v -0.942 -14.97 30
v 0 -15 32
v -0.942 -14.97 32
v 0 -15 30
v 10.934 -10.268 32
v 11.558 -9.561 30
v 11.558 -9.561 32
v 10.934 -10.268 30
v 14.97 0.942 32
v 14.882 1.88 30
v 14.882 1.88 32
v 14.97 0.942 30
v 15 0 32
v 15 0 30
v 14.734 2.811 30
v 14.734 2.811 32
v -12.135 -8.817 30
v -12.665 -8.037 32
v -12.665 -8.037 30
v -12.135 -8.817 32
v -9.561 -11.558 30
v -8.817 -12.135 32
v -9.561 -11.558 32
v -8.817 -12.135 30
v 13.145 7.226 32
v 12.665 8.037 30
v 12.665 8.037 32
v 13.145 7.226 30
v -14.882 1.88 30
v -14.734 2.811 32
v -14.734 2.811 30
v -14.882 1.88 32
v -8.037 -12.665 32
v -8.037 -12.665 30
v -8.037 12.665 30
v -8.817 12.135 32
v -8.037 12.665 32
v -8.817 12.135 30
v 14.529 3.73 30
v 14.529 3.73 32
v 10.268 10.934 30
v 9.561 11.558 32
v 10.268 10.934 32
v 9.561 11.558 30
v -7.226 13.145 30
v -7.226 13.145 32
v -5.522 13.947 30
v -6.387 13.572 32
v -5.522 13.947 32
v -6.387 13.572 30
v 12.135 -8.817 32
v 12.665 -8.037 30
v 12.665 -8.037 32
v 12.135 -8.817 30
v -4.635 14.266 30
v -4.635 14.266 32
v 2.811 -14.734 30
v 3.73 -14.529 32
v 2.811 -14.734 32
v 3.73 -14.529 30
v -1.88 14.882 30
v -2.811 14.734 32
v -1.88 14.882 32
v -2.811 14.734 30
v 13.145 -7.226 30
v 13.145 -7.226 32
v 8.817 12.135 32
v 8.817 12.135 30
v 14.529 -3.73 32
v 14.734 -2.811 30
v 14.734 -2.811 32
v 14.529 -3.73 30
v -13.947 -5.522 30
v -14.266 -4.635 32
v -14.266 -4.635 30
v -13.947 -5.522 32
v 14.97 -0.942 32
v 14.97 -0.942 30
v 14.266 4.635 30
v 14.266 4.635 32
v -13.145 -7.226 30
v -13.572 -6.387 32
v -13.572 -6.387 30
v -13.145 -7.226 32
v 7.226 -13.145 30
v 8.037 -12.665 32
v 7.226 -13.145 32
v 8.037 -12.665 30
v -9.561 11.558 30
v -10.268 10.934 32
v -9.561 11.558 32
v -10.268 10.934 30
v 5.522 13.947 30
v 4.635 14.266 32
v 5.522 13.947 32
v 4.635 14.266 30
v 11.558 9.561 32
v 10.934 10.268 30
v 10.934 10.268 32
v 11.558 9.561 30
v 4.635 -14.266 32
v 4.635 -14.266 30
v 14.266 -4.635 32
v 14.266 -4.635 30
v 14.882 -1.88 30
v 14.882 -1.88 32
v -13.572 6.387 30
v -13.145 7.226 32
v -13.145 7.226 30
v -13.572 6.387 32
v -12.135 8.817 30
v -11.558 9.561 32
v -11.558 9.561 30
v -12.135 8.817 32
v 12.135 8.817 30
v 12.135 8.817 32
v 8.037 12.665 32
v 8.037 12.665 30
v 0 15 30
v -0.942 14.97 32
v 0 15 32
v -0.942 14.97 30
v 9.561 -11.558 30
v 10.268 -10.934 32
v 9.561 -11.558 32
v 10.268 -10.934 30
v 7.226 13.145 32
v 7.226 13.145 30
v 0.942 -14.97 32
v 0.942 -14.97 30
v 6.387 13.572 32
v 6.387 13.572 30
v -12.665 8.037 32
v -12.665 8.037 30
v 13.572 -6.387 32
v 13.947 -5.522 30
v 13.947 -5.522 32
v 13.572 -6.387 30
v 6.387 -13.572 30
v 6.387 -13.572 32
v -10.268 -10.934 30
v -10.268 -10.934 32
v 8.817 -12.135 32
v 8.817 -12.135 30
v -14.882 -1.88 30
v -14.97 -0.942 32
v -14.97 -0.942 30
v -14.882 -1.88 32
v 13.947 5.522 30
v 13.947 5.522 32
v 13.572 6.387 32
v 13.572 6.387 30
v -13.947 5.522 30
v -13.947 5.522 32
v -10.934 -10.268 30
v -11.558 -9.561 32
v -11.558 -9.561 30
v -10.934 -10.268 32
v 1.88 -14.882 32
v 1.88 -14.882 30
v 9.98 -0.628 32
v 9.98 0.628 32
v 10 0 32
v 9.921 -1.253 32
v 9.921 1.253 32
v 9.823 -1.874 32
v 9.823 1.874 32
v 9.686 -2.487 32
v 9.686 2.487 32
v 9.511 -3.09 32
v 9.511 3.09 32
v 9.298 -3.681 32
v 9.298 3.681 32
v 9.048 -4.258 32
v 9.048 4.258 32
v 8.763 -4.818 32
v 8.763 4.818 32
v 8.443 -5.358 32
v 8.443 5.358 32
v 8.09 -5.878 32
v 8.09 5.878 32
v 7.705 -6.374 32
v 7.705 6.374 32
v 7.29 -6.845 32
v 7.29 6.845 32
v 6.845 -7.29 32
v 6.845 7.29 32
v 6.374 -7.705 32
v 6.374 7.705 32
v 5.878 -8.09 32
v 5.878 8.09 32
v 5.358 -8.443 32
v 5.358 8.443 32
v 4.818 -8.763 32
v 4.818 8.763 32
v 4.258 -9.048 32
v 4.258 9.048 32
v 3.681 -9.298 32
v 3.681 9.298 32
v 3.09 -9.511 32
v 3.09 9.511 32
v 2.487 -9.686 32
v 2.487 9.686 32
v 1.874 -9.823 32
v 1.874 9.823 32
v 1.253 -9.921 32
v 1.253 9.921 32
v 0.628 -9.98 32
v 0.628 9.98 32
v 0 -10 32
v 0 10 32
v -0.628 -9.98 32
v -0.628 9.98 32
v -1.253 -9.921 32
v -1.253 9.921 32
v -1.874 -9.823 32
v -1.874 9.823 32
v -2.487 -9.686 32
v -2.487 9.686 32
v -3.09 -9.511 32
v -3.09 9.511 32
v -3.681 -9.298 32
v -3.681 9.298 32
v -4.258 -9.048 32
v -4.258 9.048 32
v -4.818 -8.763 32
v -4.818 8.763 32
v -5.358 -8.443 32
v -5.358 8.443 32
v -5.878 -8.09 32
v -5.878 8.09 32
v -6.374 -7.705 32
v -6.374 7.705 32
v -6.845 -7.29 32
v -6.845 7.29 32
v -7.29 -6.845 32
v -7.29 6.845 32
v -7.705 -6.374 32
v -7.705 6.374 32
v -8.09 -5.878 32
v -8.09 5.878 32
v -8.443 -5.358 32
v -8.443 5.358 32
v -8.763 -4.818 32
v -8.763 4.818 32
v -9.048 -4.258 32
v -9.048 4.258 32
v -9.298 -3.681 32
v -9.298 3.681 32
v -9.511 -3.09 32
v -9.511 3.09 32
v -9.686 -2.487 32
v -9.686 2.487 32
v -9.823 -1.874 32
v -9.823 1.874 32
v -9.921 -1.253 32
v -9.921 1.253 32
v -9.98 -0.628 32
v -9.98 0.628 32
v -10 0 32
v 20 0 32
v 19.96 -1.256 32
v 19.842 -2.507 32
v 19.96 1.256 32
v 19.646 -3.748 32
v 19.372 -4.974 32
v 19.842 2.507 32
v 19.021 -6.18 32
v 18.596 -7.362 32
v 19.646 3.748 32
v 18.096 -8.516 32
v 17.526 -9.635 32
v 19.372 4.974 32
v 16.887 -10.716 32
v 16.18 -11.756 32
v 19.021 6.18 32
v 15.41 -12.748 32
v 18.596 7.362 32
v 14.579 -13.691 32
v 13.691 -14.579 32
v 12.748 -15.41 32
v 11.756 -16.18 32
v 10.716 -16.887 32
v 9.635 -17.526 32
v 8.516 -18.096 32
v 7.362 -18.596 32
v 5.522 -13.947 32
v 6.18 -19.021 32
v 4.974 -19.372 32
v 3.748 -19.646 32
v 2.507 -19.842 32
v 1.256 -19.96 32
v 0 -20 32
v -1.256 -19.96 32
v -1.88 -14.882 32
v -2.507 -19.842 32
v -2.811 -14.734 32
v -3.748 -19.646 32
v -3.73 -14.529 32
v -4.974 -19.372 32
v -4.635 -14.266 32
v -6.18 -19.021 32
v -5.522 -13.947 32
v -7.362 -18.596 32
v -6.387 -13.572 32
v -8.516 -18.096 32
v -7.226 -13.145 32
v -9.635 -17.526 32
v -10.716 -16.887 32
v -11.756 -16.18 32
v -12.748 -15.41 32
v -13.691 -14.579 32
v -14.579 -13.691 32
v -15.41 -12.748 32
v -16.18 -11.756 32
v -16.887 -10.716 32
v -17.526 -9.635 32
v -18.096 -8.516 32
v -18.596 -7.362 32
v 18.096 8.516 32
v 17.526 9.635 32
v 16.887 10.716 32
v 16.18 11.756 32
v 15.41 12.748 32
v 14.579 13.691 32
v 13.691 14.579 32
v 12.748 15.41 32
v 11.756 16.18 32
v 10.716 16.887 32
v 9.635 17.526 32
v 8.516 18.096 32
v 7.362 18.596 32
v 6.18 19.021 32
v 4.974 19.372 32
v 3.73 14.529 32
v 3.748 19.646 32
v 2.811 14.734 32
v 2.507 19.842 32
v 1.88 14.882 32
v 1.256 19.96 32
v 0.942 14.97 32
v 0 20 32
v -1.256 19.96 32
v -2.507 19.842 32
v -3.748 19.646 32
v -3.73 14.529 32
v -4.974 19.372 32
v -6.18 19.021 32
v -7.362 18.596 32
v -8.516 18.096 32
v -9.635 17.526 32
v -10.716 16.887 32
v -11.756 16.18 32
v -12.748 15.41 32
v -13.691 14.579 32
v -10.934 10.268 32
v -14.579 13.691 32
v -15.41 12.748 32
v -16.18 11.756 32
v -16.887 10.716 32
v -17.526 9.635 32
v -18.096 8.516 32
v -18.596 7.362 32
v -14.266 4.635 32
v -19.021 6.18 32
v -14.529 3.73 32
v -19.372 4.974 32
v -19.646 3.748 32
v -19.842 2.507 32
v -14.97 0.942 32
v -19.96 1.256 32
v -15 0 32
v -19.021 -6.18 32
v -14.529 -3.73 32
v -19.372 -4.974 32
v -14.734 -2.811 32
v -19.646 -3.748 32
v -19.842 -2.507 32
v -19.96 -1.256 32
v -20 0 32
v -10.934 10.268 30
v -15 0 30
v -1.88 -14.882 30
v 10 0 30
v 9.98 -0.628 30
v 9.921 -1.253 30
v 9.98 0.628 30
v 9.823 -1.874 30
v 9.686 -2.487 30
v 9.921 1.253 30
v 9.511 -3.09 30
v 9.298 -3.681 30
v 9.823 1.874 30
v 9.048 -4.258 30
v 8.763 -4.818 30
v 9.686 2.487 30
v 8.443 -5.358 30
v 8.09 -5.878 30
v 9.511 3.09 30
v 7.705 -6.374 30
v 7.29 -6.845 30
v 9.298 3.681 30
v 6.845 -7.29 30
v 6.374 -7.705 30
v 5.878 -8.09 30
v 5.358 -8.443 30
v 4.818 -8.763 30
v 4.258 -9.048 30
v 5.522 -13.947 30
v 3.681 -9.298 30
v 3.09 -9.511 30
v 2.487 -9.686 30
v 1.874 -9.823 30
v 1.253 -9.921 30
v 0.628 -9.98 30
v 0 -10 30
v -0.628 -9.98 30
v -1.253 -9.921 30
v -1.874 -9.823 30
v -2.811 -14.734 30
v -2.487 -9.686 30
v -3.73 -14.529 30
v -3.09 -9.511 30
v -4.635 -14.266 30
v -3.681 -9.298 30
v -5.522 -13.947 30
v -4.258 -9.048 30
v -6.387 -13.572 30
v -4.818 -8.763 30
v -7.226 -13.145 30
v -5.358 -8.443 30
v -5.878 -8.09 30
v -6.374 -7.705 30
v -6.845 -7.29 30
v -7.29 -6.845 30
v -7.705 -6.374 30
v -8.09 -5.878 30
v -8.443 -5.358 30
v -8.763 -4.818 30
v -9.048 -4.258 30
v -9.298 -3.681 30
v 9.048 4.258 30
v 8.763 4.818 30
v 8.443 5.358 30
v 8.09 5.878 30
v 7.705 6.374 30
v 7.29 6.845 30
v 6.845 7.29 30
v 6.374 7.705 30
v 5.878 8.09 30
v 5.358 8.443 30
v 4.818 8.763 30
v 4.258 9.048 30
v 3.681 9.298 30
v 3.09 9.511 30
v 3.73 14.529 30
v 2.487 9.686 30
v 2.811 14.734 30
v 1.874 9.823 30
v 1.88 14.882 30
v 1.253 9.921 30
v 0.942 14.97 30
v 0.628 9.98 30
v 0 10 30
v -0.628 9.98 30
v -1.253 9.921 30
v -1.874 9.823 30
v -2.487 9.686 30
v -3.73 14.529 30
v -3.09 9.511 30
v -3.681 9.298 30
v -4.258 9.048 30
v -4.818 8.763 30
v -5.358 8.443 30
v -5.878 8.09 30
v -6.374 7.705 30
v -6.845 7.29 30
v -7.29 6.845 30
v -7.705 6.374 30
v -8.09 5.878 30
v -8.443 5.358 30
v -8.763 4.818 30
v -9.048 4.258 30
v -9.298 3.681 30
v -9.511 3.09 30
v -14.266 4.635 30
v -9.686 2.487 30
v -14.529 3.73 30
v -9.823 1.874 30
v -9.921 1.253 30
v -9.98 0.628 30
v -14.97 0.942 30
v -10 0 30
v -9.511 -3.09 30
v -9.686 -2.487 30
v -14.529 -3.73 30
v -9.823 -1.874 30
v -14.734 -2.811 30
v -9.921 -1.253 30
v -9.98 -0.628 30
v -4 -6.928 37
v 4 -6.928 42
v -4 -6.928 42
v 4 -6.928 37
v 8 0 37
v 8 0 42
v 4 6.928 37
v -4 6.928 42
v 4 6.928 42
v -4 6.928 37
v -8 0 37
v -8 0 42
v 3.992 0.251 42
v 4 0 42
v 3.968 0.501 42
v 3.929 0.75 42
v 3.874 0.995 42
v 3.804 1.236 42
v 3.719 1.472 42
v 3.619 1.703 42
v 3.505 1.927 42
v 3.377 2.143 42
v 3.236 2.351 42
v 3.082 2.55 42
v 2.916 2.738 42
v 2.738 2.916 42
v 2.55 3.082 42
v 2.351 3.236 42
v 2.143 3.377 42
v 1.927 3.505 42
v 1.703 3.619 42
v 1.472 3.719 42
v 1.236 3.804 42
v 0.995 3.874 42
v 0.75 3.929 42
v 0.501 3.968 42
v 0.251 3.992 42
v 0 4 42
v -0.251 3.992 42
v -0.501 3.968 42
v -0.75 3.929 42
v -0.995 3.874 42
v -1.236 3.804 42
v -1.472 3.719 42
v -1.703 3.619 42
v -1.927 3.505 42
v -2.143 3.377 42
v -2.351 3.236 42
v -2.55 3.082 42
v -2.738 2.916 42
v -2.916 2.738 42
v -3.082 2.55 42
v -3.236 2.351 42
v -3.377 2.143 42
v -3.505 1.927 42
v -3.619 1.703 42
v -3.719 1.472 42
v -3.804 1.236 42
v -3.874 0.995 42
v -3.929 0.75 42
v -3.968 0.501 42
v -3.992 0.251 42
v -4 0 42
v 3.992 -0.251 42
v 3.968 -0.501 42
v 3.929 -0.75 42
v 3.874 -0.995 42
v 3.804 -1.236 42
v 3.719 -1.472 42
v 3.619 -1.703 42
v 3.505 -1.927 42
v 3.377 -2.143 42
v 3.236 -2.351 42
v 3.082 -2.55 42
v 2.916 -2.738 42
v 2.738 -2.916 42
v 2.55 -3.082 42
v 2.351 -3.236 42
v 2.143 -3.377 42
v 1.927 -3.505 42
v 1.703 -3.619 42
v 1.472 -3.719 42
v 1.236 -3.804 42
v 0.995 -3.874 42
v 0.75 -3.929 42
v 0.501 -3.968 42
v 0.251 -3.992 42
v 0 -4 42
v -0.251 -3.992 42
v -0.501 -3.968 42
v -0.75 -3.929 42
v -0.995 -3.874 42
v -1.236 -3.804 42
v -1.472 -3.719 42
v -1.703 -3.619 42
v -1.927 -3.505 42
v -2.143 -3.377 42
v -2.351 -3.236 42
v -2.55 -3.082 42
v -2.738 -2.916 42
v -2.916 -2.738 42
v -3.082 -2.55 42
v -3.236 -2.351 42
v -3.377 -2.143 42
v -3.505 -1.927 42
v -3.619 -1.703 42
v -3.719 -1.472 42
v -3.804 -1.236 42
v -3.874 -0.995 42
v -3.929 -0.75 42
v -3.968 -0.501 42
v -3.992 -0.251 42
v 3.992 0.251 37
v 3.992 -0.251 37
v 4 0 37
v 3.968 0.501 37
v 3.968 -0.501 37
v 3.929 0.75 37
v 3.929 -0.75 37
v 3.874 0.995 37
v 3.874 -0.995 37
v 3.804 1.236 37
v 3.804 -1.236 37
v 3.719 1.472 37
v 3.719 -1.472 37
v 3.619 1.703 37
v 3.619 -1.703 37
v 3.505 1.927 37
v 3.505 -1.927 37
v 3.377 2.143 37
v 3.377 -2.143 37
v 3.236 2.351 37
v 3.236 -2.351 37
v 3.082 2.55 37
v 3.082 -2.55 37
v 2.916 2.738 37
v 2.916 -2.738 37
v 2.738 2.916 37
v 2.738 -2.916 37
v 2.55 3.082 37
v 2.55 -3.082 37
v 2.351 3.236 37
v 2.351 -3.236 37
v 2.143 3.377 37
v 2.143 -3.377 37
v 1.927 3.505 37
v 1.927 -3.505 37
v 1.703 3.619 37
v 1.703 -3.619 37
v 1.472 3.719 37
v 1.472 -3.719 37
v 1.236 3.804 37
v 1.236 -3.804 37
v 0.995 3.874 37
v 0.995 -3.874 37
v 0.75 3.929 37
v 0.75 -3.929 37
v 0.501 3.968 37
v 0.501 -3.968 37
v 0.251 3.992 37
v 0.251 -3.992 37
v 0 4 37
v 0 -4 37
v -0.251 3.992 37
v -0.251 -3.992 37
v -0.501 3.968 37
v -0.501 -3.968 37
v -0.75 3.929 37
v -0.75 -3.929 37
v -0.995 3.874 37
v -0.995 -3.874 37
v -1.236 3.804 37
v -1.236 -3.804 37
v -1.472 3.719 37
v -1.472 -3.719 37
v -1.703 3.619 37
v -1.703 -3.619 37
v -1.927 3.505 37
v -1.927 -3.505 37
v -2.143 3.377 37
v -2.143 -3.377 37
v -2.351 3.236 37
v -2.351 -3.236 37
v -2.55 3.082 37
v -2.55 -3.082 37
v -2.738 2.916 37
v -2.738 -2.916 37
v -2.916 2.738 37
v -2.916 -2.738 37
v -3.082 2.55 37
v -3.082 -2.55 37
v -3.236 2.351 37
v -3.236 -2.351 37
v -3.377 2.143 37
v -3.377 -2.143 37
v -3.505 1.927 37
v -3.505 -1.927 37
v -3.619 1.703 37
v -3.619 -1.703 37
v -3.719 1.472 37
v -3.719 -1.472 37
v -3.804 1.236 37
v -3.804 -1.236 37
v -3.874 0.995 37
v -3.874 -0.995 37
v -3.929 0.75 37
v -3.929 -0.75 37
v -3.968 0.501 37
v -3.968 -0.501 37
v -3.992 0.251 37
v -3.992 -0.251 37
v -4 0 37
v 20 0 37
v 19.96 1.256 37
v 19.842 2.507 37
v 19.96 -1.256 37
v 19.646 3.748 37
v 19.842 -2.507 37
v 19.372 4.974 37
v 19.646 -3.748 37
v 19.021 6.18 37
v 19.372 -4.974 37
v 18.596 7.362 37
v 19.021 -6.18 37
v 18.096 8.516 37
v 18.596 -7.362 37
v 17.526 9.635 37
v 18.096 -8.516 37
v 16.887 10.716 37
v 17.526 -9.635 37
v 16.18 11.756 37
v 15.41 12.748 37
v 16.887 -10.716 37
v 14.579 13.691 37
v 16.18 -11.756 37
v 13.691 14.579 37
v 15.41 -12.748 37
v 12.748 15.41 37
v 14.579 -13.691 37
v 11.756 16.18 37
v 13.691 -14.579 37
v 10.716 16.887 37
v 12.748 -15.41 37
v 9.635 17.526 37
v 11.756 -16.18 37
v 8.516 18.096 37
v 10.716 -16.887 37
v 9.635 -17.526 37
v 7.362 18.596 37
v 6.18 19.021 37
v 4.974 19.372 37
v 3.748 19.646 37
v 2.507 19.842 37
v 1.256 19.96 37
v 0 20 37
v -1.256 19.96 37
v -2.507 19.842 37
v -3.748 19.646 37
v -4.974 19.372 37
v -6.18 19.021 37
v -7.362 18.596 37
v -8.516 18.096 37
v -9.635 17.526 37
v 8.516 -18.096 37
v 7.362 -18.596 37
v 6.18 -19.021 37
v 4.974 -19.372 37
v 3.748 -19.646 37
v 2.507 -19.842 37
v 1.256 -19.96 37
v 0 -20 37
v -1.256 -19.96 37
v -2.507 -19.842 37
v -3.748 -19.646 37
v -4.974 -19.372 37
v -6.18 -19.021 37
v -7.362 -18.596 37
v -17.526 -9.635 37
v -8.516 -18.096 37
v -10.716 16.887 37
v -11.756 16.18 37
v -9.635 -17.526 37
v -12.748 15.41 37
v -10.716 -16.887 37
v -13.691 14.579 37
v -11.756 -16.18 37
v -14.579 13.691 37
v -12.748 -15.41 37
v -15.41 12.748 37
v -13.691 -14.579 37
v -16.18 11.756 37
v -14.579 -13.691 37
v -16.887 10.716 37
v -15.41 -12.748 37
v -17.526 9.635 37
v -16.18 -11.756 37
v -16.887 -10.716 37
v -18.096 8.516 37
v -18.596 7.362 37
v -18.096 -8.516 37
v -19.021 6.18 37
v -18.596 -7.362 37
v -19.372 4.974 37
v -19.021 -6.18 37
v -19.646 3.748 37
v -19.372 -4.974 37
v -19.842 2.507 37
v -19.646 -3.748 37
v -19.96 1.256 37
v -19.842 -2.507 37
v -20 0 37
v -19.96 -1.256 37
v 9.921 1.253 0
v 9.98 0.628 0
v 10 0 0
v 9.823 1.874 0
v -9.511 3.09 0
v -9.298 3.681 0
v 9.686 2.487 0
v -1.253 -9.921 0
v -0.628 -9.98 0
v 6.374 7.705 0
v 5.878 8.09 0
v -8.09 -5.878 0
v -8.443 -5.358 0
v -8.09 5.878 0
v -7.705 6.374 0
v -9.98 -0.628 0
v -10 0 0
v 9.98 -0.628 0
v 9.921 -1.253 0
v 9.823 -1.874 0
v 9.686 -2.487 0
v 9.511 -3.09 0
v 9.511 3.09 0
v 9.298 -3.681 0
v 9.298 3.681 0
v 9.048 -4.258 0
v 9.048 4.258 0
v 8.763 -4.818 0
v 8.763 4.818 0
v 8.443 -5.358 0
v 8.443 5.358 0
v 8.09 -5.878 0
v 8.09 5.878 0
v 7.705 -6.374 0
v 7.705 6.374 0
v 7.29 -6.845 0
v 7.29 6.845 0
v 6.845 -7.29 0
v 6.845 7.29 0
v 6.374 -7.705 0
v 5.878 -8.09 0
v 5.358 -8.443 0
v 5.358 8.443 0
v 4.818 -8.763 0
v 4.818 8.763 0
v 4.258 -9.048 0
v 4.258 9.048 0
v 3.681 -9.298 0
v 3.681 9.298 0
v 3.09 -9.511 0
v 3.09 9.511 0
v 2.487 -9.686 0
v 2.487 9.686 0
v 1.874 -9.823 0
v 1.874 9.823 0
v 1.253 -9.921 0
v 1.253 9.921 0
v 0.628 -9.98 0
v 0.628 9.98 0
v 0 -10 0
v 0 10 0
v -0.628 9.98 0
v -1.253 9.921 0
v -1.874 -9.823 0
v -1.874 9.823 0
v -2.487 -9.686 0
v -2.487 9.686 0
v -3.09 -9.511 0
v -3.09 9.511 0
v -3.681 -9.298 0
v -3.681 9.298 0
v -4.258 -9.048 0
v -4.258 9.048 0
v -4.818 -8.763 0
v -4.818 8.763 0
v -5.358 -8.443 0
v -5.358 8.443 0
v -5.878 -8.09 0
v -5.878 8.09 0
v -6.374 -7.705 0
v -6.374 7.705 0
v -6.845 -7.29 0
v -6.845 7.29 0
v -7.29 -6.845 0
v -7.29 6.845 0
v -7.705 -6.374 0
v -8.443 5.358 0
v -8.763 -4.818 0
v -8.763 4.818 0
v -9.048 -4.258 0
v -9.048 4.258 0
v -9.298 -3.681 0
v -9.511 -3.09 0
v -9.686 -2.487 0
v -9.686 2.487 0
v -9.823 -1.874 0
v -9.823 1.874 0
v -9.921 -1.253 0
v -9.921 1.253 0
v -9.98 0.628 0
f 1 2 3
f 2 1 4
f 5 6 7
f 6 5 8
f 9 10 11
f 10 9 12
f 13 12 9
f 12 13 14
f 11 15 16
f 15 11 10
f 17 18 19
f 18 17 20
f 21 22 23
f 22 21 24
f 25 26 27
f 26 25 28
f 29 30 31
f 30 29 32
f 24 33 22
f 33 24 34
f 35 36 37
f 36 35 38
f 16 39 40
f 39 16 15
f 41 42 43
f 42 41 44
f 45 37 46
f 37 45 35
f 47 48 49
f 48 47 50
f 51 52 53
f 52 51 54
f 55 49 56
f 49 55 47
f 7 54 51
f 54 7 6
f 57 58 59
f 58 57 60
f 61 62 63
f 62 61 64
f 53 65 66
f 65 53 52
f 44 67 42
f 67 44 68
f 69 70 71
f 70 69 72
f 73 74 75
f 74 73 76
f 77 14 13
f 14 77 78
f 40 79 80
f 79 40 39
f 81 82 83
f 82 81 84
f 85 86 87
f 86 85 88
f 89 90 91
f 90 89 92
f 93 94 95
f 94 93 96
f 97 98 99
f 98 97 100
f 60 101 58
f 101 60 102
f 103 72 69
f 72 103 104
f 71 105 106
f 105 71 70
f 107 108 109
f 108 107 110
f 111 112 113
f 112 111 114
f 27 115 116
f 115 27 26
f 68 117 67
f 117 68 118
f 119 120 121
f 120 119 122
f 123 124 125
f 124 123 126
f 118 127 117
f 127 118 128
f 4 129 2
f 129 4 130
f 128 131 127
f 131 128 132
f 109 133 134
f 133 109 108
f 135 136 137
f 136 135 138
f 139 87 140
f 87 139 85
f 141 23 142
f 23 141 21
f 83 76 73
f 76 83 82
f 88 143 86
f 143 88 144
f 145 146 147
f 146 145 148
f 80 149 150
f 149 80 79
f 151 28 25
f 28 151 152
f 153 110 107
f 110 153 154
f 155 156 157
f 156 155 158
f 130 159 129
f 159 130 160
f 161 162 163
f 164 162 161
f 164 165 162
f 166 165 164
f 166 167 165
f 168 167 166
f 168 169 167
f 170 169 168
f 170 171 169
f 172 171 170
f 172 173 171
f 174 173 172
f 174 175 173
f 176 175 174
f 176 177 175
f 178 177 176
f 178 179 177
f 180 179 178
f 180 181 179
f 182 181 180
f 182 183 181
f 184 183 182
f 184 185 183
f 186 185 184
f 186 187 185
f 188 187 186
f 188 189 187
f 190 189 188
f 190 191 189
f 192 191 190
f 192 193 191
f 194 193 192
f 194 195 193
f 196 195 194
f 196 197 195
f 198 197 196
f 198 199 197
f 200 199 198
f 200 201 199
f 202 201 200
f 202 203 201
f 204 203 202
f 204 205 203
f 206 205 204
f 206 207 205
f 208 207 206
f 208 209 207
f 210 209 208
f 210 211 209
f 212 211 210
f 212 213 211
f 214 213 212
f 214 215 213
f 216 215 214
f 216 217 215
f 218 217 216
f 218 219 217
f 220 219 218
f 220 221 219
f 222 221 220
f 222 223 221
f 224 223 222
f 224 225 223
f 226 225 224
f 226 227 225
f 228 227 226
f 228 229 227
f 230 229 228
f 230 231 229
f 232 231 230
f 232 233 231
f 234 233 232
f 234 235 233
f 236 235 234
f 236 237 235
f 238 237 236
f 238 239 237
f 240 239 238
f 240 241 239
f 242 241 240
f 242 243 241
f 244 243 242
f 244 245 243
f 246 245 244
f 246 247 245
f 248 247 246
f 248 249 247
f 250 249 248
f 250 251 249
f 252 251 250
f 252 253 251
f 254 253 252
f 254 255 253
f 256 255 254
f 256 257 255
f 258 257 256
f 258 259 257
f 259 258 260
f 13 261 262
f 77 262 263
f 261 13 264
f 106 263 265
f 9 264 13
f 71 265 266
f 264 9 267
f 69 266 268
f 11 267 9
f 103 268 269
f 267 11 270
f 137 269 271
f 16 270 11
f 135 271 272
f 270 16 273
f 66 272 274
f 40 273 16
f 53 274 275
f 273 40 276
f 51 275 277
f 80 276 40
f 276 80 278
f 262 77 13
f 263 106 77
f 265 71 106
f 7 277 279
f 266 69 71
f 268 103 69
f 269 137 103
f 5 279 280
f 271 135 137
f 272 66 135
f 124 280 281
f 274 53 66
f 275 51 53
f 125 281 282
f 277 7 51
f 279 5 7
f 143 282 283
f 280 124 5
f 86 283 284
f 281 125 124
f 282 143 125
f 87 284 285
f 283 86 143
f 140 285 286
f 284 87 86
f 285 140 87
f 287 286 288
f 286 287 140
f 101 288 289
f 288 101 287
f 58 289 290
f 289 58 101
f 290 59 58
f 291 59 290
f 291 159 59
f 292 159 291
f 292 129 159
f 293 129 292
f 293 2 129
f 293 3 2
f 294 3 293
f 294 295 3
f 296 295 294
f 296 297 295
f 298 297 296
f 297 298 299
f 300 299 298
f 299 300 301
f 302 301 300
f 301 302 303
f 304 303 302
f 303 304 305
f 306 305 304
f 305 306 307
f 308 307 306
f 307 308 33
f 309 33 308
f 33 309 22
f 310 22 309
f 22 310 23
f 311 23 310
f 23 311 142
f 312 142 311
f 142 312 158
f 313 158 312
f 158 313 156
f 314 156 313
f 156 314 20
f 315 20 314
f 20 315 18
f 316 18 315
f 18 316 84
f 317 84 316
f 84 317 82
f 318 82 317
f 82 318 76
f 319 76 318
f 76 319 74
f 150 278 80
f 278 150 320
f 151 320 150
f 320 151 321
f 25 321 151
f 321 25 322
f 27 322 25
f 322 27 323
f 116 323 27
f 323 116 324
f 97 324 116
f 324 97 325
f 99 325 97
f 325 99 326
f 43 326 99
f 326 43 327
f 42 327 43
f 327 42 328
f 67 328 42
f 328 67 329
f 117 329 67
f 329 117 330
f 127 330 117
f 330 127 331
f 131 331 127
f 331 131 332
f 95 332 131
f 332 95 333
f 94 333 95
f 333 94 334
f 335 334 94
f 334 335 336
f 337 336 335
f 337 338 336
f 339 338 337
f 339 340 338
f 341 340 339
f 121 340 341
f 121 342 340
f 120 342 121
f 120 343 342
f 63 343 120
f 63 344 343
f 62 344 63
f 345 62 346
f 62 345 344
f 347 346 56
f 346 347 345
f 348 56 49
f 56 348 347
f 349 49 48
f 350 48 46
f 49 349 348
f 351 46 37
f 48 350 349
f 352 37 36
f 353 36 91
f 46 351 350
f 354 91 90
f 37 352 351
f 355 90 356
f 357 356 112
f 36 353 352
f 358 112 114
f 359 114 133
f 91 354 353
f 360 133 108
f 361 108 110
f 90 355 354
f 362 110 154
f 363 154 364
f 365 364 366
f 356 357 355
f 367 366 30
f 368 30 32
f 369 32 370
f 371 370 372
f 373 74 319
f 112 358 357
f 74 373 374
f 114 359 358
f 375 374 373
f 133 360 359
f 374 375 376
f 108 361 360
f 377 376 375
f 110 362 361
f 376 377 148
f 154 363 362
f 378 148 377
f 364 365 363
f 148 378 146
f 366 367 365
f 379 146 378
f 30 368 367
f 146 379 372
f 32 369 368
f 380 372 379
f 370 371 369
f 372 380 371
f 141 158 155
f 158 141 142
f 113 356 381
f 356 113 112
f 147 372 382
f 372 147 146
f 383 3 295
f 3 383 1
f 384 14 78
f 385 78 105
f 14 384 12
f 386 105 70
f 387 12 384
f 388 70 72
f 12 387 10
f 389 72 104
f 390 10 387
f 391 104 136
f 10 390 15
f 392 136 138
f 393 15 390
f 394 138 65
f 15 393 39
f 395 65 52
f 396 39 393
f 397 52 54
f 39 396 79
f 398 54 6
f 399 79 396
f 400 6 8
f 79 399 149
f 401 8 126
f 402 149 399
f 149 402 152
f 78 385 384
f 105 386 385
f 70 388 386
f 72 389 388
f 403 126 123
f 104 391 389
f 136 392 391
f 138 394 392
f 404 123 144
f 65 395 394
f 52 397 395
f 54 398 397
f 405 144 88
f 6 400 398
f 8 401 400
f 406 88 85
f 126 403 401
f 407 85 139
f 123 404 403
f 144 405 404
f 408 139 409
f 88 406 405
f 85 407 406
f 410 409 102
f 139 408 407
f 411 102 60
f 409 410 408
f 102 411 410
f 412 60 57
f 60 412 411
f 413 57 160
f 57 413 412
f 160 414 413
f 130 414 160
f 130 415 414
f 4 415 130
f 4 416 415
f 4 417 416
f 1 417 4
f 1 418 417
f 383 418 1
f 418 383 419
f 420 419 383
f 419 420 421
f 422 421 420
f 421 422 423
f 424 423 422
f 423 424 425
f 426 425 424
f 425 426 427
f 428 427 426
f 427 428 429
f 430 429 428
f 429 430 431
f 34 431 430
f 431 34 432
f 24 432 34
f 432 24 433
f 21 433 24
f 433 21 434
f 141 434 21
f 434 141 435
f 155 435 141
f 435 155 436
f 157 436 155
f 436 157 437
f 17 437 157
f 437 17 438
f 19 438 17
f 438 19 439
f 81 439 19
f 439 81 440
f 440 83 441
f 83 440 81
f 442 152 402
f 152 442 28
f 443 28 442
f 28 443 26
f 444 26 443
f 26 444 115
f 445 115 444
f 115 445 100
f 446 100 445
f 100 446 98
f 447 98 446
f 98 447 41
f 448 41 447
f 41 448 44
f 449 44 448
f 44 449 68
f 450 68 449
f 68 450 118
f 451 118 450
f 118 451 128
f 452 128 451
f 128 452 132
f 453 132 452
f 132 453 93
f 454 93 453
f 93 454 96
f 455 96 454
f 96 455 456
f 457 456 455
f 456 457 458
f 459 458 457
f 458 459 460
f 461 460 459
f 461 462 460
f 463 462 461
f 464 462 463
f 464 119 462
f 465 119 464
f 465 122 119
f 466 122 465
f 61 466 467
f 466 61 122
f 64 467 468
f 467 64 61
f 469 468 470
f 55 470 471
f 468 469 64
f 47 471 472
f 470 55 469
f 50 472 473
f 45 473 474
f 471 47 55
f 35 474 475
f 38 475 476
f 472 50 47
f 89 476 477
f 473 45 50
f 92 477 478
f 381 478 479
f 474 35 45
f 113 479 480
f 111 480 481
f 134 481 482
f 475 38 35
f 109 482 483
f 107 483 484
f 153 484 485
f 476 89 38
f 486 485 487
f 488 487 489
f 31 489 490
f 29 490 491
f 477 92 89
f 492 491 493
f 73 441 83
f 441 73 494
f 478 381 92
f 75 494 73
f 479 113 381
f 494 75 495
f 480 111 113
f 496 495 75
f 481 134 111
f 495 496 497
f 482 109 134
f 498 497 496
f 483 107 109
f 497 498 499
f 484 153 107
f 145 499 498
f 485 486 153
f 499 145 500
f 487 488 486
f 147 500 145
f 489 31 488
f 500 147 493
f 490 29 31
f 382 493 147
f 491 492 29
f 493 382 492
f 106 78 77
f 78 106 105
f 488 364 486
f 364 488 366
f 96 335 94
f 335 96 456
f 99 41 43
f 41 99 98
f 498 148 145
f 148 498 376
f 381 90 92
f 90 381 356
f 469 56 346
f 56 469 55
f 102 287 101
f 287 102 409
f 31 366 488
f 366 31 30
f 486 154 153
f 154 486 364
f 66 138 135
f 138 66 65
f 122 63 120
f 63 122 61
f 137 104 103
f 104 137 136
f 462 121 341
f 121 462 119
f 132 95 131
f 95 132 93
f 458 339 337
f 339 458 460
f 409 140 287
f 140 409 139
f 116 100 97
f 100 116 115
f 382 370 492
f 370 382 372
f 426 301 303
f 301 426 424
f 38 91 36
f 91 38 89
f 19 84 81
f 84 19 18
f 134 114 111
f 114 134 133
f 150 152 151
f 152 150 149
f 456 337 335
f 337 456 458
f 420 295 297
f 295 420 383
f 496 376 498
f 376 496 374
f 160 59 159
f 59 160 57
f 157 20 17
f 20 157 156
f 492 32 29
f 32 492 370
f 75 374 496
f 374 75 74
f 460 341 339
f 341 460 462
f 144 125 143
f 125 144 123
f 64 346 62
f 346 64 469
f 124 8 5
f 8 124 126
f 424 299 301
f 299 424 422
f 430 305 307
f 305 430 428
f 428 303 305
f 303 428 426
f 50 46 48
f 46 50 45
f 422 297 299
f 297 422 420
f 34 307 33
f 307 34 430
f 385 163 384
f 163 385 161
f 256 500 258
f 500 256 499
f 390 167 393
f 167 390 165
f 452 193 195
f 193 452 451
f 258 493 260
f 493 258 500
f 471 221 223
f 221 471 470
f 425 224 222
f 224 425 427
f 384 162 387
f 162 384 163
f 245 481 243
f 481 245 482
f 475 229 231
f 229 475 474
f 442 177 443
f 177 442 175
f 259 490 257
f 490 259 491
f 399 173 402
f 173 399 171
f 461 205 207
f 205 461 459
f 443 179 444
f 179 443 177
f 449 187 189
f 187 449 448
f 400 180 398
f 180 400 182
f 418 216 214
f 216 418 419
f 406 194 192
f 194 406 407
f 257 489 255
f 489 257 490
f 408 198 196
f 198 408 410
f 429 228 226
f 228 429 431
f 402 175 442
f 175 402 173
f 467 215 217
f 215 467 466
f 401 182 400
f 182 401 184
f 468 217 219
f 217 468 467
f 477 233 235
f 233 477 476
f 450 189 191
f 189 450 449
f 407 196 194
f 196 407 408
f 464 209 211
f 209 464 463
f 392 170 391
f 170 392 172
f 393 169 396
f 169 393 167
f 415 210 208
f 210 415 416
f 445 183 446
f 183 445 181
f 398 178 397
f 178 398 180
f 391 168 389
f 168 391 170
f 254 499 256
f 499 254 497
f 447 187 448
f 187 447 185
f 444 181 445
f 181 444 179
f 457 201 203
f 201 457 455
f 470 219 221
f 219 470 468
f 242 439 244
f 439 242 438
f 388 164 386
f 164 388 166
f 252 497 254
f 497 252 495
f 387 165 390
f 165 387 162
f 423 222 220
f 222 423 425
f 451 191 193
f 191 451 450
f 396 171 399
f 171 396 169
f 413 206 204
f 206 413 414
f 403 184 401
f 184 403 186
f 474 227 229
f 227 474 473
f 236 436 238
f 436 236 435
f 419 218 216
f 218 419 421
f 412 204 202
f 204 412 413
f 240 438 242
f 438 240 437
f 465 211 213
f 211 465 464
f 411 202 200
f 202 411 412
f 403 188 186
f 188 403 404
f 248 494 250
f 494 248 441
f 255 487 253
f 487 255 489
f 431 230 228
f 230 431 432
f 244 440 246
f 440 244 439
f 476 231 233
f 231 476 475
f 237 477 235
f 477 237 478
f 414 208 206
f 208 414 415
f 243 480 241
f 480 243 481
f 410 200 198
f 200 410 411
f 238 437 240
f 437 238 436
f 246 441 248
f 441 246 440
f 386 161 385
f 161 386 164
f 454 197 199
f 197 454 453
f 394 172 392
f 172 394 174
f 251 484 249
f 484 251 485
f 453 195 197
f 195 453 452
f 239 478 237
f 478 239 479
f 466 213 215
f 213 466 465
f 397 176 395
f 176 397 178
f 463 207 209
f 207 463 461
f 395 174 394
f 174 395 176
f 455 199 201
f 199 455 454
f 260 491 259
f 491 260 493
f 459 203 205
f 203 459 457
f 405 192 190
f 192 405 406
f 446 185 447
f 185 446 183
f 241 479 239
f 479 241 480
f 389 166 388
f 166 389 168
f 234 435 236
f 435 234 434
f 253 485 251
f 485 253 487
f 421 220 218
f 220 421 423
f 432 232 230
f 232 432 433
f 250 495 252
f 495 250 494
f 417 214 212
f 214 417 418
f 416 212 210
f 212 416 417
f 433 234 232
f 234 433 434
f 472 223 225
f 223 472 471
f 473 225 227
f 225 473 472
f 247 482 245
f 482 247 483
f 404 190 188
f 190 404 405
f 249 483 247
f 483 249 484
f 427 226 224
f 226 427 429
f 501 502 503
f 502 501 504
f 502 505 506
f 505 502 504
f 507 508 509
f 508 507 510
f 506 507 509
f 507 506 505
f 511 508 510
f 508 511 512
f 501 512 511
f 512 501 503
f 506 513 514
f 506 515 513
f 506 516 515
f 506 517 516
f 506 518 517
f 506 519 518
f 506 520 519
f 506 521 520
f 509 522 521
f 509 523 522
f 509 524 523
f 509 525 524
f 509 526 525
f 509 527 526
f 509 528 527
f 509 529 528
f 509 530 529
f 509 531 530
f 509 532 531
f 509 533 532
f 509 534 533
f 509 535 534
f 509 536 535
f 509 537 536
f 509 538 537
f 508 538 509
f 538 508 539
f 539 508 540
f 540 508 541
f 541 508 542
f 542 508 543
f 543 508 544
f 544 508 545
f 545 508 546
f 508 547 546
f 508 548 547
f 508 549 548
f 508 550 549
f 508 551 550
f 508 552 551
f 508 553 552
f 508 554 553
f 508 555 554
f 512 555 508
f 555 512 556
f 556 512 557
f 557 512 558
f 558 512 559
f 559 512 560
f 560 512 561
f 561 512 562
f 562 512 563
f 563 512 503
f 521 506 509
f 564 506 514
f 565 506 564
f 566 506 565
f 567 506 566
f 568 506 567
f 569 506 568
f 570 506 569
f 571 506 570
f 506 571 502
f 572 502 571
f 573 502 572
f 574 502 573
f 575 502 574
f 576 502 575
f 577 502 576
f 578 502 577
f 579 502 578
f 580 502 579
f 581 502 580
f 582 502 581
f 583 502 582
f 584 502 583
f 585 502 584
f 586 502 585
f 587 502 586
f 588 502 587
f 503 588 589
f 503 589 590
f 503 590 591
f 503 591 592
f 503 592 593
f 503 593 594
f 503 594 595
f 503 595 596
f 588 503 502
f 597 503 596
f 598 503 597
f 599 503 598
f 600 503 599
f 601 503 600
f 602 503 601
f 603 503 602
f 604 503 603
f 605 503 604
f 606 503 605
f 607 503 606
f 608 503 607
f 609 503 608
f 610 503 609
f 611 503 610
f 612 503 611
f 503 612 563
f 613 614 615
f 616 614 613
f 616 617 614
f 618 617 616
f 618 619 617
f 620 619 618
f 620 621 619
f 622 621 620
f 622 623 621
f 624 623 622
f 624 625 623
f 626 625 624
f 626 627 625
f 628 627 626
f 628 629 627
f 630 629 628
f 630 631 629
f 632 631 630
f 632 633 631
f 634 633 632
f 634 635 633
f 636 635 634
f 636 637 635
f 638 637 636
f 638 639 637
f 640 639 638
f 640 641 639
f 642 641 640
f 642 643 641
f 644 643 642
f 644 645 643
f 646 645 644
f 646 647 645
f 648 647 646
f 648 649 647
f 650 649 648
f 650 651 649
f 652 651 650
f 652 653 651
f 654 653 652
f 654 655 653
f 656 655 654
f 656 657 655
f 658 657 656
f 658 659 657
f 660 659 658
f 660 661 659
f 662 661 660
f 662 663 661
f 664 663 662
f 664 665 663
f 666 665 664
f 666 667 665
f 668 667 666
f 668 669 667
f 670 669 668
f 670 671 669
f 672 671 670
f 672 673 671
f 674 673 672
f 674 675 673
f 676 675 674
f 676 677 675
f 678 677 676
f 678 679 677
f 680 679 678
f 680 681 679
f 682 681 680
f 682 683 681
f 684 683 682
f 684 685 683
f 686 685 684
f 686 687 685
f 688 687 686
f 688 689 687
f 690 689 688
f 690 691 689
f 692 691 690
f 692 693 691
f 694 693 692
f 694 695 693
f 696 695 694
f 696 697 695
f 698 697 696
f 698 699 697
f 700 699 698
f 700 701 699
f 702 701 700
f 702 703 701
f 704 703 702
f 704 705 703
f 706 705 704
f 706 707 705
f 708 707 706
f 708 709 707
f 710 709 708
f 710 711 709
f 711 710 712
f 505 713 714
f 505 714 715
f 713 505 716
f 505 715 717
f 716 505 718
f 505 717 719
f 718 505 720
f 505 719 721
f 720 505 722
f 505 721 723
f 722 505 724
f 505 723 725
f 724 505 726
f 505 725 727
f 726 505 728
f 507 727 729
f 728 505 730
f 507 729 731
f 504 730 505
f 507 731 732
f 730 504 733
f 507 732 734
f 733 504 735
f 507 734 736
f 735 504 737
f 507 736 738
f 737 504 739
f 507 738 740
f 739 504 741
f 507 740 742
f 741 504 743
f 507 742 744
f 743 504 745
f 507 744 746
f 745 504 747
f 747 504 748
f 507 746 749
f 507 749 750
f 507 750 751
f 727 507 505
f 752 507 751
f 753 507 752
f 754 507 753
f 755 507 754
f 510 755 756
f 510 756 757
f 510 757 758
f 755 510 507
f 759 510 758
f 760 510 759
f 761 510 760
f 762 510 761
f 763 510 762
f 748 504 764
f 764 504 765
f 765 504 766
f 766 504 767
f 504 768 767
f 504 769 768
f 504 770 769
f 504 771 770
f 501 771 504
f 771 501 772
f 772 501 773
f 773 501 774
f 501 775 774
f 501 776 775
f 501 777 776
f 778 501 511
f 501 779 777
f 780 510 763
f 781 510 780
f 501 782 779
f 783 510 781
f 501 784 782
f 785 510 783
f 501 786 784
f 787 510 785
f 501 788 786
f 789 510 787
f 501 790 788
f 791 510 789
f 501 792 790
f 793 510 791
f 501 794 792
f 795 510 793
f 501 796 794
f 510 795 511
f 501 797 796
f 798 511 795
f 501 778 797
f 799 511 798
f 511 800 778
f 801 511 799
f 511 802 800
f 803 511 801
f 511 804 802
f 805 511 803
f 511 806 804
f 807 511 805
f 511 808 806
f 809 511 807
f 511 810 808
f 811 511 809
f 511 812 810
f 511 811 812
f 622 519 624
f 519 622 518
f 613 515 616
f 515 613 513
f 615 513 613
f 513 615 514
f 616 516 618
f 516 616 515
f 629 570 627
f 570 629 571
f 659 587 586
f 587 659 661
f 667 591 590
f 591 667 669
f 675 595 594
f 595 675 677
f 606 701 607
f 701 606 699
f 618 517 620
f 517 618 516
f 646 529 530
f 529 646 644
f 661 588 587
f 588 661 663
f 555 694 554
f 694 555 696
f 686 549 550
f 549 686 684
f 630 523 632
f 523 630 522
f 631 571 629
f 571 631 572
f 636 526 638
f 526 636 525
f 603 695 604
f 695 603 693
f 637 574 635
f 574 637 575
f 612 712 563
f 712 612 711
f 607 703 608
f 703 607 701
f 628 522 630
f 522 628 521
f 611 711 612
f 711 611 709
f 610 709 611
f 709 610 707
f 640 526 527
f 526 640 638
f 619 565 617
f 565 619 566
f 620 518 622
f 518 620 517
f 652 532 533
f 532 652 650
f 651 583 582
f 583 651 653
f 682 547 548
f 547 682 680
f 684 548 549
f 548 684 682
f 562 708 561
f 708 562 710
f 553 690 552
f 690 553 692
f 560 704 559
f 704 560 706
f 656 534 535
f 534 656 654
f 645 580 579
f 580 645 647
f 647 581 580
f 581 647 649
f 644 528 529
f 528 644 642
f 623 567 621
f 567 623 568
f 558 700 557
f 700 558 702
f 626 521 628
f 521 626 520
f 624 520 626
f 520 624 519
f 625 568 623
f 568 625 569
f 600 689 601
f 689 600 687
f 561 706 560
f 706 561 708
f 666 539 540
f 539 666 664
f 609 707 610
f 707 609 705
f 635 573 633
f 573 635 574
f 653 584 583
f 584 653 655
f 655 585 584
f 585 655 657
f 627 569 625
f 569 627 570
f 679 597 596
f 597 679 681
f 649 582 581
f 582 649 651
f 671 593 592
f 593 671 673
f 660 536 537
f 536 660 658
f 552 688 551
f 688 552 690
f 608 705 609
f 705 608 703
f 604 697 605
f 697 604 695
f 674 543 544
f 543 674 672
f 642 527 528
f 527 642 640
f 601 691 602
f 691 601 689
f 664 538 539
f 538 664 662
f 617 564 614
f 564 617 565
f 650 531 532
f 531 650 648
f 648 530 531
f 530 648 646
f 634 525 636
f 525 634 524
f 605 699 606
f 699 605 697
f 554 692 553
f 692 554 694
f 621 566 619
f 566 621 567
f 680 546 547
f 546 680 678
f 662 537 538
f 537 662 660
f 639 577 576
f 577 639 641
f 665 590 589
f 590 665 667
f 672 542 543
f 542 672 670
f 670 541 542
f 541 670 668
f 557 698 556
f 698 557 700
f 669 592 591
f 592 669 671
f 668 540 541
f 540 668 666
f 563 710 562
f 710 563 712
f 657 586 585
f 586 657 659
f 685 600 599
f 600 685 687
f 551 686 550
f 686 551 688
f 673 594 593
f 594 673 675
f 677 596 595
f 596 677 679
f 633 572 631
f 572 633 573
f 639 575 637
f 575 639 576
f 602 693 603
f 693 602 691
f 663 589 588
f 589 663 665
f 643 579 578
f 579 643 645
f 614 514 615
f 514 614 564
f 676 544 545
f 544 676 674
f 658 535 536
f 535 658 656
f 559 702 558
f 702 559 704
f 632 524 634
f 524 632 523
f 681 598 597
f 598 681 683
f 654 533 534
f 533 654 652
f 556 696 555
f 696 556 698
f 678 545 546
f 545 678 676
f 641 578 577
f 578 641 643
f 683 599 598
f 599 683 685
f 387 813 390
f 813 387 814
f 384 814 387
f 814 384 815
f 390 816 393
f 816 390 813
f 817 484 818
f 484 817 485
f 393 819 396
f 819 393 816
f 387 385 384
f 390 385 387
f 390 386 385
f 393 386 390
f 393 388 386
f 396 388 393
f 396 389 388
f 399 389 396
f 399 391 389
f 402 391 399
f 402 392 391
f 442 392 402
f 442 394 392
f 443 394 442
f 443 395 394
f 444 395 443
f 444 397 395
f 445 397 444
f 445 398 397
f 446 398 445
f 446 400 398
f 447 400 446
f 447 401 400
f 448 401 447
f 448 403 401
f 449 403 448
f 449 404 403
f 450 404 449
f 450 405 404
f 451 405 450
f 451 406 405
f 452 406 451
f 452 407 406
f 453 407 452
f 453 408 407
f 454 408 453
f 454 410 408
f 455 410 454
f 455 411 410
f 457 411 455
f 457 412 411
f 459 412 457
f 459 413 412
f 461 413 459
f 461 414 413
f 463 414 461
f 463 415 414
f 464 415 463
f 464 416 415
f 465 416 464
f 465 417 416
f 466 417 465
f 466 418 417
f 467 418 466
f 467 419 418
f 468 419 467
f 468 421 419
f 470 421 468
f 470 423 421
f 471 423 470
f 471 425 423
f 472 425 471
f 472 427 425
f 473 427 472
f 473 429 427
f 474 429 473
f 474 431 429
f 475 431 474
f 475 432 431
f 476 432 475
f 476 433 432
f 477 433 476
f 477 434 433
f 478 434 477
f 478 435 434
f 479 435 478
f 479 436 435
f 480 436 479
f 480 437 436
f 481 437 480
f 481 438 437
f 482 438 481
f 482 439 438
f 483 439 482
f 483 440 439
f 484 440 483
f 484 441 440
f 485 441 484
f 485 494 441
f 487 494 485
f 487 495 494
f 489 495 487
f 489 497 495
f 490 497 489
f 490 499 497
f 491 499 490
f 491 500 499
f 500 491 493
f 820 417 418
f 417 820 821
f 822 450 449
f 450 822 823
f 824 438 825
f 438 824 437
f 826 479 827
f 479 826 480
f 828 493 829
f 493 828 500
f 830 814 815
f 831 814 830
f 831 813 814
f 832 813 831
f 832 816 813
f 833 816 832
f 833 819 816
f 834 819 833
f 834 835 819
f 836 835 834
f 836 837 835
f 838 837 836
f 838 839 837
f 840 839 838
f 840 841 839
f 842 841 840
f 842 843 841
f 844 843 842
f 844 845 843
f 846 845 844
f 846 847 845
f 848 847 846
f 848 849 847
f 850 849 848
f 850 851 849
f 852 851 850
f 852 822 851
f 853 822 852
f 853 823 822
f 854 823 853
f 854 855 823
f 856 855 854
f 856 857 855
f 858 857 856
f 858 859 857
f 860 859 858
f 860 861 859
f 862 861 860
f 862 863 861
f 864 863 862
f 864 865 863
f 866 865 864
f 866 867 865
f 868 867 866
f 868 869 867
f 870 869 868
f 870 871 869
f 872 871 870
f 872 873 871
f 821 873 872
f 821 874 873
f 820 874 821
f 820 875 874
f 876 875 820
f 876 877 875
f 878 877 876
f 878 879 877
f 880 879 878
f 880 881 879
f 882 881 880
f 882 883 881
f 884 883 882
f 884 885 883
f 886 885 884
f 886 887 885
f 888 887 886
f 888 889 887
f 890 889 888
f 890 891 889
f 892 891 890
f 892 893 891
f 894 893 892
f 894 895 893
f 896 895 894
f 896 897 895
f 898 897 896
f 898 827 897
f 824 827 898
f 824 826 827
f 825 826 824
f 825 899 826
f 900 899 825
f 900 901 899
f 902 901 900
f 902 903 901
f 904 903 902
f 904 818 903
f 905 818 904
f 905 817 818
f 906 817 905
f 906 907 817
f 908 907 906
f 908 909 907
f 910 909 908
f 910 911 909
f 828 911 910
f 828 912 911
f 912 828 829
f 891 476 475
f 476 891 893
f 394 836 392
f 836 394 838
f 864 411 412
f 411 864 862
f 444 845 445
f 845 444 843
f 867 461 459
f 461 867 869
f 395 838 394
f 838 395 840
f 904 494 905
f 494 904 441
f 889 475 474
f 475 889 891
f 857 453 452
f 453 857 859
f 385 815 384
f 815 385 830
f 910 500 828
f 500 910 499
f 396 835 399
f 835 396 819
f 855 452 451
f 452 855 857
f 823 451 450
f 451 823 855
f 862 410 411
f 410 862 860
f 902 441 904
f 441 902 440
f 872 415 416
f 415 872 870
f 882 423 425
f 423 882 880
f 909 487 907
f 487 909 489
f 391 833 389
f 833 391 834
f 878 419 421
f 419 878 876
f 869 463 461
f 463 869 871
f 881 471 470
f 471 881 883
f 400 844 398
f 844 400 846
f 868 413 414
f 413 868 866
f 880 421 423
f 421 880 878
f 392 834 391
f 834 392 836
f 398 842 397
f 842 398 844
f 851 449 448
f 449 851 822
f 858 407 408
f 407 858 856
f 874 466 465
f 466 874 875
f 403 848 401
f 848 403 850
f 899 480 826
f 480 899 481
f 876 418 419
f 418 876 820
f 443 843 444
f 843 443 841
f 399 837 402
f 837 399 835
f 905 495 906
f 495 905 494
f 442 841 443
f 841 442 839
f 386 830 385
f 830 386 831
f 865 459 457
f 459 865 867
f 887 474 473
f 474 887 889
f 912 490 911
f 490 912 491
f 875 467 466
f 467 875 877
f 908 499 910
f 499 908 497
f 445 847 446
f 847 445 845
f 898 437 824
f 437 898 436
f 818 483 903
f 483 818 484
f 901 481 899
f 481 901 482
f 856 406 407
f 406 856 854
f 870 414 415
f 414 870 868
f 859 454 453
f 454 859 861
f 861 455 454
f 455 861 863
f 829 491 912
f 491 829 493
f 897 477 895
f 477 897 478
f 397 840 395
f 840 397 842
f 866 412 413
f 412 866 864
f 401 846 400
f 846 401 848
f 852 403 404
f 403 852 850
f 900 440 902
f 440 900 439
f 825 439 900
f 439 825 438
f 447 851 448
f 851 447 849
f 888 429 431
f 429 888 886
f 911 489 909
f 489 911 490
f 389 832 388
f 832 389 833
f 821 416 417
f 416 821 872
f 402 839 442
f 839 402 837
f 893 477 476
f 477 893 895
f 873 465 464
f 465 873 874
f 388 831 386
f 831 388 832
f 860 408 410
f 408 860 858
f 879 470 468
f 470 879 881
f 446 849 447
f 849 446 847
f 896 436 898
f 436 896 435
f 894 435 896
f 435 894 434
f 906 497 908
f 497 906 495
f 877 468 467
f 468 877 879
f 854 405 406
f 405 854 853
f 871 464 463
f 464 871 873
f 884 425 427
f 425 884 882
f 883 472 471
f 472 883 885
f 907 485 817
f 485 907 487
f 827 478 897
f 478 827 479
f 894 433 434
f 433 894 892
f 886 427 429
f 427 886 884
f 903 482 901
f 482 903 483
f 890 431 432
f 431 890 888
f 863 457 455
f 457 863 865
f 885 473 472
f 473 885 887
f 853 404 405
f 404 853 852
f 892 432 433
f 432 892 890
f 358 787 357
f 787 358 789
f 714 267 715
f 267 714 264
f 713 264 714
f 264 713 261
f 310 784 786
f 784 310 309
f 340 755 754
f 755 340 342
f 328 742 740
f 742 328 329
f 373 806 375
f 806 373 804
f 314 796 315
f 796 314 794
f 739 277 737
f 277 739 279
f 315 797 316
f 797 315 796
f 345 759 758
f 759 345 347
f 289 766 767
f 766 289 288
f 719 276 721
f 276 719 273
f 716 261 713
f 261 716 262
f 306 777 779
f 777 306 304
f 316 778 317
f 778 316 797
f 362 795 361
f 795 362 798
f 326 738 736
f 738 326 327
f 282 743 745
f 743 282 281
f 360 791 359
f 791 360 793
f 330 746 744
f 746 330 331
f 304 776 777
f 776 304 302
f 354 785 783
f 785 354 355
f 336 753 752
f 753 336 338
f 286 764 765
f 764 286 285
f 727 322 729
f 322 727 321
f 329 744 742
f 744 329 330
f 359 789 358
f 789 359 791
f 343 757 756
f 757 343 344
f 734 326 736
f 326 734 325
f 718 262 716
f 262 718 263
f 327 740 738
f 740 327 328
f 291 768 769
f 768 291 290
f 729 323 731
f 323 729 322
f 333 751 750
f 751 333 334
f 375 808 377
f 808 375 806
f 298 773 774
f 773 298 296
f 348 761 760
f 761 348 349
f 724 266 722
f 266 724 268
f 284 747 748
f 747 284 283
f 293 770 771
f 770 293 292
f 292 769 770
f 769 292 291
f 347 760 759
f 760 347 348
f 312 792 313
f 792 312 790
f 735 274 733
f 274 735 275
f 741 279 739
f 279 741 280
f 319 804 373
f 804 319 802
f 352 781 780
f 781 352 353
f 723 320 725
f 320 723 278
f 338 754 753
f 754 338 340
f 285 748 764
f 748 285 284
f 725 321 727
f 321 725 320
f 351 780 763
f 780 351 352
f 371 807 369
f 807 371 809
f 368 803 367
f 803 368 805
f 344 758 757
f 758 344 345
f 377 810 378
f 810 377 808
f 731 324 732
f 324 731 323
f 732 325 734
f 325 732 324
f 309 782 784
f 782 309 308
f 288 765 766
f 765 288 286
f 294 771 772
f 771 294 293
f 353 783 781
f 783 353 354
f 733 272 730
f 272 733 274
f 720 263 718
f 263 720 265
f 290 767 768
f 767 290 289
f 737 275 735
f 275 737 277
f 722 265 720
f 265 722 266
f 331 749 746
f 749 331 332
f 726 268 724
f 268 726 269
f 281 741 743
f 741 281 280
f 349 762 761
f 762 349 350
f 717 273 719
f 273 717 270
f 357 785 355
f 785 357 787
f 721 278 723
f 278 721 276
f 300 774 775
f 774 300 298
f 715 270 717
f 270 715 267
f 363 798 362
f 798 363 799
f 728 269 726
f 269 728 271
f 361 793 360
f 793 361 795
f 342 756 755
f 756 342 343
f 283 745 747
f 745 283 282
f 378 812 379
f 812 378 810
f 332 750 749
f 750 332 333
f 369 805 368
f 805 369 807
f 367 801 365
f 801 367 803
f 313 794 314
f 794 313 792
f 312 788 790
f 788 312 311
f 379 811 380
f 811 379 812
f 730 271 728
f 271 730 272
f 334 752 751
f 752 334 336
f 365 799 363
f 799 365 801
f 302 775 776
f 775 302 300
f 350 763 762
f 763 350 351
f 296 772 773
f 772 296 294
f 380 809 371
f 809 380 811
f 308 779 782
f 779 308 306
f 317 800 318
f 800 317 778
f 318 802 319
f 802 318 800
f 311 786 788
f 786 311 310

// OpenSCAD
// Central Cylinder
module central_cylinder() {
    cylinder(h = 30, r = 10, $fn = 100); // Height increased to 30 to match the elongated shape of the original model
}

// Spacer Ring
module spacer_ring() {
    difference() {
        cylinder(h = 2, r = 15, $fn = 100); // Reduced thickness to 2 to match the thinner profile of the original model
        cylinder(h = 2.1, r = 10, $fn = 100); // Inner cut to create the ring
    }
}

// Flange Plate
module flange_plate() {
    cylinder(h = 5, r = 20, $fn = 100); // Increased diameter to 20 to match the original model
}

// Nut
module nut() {
    difference() {
        cylinder(h = 5, r = 8, $fn = 6); // Hexagonal nut with sharper edges
        cylinder(h = 5.1, r = 4, $fn = 100); // Inner cut for the bolt
    }
}

// Bolt
module bolt() {
    cylinder(h = 25, r = 3, $fn = 100); // Increased length to 25 to match the original model
}

// Main Model
module model() {
    // Layer 1: Central Cylinder
    central_cylinder();
    
    // Layer 2: Spacer Ring
    translate([0, 0, 30]) spacer_ring(); // Positioned on top of the central cylinder
    
    // Layer 3: Flange Plate
    translate([0, 0, 32]) flange_plate(); // Positioned on top of the spacer ring
    
    // Layer 4: Nut
    translate([0, 0, 37]) nut(); // Positioned on top of the flange plate
    
    // Layer 5: Bolt
    translate([0, 0, 0]) bolt(); // Positioned through the entire assembly
}

// Render the model
model();
